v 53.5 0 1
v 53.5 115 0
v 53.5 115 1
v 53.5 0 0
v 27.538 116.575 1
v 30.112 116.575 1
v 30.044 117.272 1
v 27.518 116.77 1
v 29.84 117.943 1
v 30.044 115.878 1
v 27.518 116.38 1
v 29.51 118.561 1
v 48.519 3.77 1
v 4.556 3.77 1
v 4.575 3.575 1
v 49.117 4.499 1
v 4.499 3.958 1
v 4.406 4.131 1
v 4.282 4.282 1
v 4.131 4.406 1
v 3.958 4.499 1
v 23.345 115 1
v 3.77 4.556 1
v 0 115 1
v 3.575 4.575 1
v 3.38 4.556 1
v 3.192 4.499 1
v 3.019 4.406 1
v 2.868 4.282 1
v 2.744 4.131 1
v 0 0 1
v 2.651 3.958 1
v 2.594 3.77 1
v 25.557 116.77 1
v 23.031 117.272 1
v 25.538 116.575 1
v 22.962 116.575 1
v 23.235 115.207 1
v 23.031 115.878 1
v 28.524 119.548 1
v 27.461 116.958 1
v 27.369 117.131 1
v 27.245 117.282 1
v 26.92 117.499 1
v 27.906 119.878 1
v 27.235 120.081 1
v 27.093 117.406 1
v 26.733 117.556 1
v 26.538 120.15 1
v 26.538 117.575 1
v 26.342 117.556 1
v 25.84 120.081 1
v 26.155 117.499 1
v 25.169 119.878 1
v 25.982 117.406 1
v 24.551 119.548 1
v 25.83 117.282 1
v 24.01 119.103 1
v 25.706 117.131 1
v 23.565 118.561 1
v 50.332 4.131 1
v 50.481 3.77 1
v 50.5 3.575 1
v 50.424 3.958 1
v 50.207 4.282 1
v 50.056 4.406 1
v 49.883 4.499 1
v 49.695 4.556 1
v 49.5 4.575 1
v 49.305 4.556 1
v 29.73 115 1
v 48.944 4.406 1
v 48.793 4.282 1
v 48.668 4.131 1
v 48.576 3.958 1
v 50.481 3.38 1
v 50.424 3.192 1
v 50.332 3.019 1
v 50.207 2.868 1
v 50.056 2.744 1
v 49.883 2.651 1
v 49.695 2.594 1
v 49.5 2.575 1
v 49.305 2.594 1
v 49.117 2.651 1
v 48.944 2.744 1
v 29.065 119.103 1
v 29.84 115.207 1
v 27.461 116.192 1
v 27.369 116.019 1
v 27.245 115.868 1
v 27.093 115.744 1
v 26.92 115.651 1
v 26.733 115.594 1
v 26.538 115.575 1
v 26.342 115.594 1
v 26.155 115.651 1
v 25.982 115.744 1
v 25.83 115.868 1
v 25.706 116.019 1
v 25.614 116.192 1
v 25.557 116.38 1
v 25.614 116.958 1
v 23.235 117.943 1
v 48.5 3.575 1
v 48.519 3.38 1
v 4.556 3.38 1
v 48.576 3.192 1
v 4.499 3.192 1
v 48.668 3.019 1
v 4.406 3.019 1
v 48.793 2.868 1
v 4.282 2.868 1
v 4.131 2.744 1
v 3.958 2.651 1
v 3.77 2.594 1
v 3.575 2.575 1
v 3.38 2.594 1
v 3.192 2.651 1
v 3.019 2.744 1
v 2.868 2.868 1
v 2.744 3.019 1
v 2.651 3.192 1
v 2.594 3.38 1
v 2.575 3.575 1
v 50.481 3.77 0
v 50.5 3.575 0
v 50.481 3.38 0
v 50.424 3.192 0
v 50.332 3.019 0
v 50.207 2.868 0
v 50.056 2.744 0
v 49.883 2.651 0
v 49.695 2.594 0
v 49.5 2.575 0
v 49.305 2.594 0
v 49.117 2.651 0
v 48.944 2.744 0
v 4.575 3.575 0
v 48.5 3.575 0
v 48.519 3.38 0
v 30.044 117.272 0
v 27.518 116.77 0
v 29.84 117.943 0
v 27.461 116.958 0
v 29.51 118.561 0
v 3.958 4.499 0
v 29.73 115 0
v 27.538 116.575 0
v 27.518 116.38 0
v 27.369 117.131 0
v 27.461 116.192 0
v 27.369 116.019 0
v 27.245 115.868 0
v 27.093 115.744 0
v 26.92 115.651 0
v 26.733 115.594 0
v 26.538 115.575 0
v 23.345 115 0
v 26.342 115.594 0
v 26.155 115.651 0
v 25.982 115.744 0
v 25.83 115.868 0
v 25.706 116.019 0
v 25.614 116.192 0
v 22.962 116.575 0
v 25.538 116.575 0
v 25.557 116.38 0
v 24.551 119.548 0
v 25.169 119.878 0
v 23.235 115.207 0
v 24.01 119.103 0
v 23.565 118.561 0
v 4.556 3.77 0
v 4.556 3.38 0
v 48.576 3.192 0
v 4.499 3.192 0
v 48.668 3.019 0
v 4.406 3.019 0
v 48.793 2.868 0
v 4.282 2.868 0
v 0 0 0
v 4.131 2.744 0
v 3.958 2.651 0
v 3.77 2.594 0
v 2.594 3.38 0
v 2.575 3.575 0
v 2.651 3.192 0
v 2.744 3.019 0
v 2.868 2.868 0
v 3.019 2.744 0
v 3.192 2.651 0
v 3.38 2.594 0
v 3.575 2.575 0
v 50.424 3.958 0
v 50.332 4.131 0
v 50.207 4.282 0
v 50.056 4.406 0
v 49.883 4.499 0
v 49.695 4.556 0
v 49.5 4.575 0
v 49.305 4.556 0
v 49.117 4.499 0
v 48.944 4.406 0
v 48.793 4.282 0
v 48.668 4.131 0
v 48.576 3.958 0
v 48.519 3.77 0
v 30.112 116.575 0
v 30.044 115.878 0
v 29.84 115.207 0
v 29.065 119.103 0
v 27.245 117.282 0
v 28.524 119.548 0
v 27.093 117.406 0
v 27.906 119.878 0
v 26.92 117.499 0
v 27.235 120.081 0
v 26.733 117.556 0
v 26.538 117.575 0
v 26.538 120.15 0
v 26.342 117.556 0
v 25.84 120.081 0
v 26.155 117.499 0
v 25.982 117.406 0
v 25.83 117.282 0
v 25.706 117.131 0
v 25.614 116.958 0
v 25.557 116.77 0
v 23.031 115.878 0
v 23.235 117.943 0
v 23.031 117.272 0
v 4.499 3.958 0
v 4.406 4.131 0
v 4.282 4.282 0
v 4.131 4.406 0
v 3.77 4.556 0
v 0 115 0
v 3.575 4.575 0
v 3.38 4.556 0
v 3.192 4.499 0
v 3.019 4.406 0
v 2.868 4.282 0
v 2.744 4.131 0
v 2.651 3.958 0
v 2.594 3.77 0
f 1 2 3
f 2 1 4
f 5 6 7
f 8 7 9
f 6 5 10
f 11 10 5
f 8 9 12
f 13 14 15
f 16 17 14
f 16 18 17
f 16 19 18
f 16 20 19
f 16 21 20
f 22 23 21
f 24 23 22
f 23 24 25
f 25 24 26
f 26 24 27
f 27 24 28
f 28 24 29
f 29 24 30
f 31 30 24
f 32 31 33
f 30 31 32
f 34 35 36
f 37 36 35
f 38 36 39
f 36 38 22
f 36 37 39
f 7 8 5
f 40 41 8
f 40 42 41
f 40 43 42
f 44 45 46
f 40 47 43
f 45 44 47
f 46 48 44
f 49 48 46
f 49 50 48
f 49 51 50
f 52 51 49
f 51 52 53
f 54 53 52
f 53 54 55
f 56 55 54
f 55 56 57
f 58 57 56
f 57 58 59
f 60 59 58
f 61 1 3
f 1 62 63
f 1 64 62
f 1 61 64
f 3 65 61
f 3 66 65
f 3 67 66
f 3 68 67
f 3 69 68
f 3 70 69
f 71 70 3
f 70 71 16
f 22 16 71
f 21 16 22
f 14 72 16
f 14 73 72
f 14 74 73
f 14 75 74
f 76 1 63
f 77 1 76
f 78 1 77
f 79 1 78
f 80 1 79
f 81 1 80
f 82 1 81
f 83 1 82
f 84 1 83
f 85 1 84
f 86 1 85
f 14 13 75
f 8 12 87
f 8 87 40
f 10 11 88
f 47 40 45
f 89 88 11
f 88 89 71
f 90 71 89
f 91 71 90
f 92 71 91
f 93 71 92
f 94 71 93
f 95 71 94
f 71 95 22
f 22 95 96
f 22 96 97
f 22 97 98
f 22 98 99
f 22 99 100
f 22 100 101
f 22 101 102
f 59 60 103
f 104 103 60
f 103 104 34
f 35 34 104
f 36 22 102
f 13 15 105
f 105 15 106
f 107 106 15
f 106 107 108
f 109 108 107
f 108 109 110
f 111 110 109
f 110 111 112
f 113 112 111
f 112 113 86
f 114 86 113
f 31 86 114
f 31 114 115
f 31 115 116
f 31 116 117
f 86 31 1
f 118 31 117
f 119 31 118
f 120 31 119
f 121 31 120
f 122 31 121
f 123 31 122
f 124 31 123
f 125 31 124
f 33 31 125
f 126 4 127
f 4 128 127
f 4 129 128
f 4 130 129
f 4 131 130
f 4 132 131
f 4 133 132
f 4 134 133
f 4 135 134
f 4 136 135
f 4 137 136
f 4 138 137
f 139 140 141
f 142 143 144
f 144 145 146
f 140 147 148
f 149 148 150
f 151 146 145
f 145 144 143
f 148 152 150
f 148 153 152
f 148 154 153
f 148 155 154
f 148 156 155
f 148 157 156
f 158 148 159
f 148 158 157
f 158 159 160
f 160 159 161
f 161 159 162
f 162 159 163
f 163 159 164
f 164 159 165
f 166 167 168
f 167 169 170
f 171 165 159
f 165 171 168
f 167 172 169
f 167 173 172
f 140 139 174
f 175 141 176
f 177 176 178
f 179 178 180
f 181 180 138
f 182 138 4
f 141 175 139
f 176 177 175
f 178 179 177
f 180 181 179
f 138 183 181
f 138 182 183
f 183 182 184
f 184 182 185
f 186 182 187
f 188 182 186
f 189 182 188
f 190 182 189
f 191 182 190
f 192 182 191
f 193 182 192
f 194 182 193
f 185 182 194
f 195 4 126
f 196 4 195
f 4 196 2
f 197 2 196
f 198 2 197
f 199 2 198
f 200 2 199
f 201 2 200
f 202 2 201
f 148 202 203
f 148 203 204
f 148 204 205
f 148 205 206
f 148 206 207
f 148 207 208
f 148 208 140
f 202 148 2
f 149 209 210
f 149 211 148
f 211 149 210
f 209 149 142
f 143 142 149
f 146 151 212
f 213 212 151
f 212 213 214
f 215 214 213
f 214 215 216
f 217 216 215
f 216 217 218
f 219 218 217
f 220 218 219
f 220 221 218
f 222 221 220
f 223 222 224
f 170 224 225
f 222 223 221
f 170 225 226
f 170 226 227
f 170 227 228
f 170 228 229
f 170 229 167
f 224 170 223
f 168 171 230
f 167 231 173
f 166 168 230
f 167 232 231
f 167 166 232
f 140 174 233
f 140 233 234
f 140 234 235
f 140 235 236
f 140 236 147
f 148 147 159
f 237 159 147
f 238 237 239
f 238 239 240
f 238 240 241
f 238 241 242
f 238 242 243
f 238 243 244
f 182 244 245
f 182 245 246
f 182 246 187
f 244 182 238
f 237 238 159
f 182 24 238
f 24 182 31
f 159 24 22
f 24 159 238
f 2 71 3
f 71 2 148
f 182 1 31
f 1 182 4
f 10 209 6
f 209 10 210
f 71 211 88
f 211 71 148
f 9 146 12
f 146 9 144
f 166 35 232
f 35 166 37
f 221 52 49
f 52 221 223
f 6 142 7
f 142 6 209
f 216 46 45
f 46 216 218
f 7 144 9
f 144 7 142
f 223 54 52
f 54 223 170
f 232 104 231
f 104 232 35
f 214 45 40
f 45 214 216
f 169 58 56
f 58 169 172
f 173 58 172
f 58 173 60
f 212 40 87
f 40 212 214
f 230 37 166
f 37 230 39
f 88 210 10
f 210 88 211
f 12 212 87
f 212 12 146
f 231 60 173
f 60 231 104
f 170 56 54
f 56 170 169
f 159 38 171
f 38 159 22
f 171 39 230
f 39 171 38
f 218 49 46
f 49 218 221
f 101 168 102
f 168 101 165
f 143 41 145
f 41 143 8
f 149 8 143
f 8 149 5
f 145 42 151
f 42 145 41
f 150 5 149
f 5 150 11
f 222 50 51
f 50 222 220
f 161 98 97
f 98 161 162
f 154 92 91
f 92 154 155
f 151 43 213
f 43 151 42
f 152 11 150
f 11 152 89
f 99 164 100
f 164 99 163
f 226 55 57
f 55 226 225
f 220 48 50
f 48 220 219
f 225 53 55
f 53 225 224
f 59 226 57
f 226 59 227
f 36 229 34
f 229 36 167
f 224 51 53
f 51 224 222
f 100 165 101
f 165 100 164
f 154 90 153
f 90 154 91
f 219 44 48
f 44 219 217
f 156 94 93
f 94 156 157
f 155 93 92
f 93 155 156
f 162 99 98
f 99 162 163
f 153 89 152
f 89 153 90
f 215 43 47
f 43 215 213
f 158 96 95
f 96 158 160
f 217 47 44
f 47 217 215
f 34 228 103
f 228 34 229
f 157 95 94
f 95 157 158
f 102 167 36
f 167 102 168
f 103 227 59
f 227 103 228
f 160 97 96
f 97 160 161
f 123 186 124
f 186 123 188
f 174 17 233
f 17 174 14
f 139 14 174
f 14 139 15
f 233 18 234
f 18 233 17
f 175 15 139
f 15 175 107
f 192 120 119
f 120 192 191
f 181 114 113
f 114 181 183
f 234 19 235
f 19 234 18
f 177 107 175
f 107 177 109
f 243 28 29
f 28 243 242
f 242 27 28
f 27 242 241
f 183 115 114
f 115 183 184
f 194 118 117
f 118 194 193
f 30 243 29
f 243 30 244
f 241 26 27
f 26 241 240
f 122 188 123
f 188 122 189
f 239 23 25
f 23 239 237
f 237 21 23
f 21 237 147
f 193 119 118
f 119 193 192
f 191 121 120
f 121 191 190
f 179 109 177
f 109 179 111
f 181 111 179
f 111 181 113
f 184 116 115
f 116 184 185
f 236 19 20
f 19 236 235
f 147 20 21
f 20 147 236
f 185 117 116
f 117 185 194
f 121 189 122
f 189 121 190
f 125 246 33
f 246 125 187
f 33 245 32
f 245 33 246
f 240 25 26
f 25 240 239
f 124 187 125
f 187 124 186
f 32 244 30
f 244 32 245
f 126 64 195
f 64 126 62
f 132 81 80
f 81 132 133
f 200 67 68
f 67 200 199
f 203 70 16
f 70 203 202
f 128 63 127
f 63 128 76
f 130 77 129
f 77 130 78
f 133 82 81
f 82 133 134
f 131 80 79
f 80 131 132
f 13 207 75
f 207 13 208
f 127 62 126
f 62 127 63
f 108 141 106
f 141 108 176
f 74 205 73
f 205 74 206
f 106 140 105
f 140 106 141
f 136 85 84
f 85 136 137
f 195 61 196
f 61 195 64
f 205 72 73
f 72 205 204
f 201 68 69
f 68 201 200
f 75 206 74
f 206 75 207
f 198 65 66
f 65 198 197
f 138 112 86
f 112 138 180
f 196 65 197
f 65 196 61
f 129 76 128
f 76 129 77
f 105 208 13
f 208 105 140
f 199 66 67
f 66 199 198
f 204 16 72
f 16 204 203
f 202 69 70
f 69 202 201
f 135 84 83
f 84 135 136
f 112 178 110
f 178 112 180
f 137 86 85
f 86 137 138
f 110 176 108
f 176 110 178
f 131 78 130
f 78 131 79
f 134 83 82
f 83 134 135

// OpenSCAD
// file: measurements.scad
wall_thickness = 2;

box_internal_width = 49.5;
box_internal_length = 111;
box_internal_height = 8.2;

insert_diameter = 3.15;
insert_length = 4;
bolt_diameter = 2;

insert_post_d = insert_diameter+wall_thickness*2;
// main file
$fn = 32;

include <measurements.scad>

difference()
{
    union()
    {
        cube([box_internal_width+wall_thickness*2, box_internal_length+wall_thickness*2, wall_thickness/2]);
        #translate([box_internal_width/2+insert_post_d/4,insert_post_d/2+box_internal_length+wall_thickness,0]) cylinder(h=1, d=insert_post_d);
    }
    #translate([box_internal_width/2+insert_post_d/4,insert_post_d/2+box_internal_length+wall_thickness,0]) cylinder(d=bolt_diameter, h=1);


    #translate([insert_post_d/2,insert_post_d/2,0]) cylinder(d=bolt_diameter, h=1);
    #translate([box_internal_width,insert_post_d/2,0]) cylinder(d=bolt_diameter, h=1);
}
